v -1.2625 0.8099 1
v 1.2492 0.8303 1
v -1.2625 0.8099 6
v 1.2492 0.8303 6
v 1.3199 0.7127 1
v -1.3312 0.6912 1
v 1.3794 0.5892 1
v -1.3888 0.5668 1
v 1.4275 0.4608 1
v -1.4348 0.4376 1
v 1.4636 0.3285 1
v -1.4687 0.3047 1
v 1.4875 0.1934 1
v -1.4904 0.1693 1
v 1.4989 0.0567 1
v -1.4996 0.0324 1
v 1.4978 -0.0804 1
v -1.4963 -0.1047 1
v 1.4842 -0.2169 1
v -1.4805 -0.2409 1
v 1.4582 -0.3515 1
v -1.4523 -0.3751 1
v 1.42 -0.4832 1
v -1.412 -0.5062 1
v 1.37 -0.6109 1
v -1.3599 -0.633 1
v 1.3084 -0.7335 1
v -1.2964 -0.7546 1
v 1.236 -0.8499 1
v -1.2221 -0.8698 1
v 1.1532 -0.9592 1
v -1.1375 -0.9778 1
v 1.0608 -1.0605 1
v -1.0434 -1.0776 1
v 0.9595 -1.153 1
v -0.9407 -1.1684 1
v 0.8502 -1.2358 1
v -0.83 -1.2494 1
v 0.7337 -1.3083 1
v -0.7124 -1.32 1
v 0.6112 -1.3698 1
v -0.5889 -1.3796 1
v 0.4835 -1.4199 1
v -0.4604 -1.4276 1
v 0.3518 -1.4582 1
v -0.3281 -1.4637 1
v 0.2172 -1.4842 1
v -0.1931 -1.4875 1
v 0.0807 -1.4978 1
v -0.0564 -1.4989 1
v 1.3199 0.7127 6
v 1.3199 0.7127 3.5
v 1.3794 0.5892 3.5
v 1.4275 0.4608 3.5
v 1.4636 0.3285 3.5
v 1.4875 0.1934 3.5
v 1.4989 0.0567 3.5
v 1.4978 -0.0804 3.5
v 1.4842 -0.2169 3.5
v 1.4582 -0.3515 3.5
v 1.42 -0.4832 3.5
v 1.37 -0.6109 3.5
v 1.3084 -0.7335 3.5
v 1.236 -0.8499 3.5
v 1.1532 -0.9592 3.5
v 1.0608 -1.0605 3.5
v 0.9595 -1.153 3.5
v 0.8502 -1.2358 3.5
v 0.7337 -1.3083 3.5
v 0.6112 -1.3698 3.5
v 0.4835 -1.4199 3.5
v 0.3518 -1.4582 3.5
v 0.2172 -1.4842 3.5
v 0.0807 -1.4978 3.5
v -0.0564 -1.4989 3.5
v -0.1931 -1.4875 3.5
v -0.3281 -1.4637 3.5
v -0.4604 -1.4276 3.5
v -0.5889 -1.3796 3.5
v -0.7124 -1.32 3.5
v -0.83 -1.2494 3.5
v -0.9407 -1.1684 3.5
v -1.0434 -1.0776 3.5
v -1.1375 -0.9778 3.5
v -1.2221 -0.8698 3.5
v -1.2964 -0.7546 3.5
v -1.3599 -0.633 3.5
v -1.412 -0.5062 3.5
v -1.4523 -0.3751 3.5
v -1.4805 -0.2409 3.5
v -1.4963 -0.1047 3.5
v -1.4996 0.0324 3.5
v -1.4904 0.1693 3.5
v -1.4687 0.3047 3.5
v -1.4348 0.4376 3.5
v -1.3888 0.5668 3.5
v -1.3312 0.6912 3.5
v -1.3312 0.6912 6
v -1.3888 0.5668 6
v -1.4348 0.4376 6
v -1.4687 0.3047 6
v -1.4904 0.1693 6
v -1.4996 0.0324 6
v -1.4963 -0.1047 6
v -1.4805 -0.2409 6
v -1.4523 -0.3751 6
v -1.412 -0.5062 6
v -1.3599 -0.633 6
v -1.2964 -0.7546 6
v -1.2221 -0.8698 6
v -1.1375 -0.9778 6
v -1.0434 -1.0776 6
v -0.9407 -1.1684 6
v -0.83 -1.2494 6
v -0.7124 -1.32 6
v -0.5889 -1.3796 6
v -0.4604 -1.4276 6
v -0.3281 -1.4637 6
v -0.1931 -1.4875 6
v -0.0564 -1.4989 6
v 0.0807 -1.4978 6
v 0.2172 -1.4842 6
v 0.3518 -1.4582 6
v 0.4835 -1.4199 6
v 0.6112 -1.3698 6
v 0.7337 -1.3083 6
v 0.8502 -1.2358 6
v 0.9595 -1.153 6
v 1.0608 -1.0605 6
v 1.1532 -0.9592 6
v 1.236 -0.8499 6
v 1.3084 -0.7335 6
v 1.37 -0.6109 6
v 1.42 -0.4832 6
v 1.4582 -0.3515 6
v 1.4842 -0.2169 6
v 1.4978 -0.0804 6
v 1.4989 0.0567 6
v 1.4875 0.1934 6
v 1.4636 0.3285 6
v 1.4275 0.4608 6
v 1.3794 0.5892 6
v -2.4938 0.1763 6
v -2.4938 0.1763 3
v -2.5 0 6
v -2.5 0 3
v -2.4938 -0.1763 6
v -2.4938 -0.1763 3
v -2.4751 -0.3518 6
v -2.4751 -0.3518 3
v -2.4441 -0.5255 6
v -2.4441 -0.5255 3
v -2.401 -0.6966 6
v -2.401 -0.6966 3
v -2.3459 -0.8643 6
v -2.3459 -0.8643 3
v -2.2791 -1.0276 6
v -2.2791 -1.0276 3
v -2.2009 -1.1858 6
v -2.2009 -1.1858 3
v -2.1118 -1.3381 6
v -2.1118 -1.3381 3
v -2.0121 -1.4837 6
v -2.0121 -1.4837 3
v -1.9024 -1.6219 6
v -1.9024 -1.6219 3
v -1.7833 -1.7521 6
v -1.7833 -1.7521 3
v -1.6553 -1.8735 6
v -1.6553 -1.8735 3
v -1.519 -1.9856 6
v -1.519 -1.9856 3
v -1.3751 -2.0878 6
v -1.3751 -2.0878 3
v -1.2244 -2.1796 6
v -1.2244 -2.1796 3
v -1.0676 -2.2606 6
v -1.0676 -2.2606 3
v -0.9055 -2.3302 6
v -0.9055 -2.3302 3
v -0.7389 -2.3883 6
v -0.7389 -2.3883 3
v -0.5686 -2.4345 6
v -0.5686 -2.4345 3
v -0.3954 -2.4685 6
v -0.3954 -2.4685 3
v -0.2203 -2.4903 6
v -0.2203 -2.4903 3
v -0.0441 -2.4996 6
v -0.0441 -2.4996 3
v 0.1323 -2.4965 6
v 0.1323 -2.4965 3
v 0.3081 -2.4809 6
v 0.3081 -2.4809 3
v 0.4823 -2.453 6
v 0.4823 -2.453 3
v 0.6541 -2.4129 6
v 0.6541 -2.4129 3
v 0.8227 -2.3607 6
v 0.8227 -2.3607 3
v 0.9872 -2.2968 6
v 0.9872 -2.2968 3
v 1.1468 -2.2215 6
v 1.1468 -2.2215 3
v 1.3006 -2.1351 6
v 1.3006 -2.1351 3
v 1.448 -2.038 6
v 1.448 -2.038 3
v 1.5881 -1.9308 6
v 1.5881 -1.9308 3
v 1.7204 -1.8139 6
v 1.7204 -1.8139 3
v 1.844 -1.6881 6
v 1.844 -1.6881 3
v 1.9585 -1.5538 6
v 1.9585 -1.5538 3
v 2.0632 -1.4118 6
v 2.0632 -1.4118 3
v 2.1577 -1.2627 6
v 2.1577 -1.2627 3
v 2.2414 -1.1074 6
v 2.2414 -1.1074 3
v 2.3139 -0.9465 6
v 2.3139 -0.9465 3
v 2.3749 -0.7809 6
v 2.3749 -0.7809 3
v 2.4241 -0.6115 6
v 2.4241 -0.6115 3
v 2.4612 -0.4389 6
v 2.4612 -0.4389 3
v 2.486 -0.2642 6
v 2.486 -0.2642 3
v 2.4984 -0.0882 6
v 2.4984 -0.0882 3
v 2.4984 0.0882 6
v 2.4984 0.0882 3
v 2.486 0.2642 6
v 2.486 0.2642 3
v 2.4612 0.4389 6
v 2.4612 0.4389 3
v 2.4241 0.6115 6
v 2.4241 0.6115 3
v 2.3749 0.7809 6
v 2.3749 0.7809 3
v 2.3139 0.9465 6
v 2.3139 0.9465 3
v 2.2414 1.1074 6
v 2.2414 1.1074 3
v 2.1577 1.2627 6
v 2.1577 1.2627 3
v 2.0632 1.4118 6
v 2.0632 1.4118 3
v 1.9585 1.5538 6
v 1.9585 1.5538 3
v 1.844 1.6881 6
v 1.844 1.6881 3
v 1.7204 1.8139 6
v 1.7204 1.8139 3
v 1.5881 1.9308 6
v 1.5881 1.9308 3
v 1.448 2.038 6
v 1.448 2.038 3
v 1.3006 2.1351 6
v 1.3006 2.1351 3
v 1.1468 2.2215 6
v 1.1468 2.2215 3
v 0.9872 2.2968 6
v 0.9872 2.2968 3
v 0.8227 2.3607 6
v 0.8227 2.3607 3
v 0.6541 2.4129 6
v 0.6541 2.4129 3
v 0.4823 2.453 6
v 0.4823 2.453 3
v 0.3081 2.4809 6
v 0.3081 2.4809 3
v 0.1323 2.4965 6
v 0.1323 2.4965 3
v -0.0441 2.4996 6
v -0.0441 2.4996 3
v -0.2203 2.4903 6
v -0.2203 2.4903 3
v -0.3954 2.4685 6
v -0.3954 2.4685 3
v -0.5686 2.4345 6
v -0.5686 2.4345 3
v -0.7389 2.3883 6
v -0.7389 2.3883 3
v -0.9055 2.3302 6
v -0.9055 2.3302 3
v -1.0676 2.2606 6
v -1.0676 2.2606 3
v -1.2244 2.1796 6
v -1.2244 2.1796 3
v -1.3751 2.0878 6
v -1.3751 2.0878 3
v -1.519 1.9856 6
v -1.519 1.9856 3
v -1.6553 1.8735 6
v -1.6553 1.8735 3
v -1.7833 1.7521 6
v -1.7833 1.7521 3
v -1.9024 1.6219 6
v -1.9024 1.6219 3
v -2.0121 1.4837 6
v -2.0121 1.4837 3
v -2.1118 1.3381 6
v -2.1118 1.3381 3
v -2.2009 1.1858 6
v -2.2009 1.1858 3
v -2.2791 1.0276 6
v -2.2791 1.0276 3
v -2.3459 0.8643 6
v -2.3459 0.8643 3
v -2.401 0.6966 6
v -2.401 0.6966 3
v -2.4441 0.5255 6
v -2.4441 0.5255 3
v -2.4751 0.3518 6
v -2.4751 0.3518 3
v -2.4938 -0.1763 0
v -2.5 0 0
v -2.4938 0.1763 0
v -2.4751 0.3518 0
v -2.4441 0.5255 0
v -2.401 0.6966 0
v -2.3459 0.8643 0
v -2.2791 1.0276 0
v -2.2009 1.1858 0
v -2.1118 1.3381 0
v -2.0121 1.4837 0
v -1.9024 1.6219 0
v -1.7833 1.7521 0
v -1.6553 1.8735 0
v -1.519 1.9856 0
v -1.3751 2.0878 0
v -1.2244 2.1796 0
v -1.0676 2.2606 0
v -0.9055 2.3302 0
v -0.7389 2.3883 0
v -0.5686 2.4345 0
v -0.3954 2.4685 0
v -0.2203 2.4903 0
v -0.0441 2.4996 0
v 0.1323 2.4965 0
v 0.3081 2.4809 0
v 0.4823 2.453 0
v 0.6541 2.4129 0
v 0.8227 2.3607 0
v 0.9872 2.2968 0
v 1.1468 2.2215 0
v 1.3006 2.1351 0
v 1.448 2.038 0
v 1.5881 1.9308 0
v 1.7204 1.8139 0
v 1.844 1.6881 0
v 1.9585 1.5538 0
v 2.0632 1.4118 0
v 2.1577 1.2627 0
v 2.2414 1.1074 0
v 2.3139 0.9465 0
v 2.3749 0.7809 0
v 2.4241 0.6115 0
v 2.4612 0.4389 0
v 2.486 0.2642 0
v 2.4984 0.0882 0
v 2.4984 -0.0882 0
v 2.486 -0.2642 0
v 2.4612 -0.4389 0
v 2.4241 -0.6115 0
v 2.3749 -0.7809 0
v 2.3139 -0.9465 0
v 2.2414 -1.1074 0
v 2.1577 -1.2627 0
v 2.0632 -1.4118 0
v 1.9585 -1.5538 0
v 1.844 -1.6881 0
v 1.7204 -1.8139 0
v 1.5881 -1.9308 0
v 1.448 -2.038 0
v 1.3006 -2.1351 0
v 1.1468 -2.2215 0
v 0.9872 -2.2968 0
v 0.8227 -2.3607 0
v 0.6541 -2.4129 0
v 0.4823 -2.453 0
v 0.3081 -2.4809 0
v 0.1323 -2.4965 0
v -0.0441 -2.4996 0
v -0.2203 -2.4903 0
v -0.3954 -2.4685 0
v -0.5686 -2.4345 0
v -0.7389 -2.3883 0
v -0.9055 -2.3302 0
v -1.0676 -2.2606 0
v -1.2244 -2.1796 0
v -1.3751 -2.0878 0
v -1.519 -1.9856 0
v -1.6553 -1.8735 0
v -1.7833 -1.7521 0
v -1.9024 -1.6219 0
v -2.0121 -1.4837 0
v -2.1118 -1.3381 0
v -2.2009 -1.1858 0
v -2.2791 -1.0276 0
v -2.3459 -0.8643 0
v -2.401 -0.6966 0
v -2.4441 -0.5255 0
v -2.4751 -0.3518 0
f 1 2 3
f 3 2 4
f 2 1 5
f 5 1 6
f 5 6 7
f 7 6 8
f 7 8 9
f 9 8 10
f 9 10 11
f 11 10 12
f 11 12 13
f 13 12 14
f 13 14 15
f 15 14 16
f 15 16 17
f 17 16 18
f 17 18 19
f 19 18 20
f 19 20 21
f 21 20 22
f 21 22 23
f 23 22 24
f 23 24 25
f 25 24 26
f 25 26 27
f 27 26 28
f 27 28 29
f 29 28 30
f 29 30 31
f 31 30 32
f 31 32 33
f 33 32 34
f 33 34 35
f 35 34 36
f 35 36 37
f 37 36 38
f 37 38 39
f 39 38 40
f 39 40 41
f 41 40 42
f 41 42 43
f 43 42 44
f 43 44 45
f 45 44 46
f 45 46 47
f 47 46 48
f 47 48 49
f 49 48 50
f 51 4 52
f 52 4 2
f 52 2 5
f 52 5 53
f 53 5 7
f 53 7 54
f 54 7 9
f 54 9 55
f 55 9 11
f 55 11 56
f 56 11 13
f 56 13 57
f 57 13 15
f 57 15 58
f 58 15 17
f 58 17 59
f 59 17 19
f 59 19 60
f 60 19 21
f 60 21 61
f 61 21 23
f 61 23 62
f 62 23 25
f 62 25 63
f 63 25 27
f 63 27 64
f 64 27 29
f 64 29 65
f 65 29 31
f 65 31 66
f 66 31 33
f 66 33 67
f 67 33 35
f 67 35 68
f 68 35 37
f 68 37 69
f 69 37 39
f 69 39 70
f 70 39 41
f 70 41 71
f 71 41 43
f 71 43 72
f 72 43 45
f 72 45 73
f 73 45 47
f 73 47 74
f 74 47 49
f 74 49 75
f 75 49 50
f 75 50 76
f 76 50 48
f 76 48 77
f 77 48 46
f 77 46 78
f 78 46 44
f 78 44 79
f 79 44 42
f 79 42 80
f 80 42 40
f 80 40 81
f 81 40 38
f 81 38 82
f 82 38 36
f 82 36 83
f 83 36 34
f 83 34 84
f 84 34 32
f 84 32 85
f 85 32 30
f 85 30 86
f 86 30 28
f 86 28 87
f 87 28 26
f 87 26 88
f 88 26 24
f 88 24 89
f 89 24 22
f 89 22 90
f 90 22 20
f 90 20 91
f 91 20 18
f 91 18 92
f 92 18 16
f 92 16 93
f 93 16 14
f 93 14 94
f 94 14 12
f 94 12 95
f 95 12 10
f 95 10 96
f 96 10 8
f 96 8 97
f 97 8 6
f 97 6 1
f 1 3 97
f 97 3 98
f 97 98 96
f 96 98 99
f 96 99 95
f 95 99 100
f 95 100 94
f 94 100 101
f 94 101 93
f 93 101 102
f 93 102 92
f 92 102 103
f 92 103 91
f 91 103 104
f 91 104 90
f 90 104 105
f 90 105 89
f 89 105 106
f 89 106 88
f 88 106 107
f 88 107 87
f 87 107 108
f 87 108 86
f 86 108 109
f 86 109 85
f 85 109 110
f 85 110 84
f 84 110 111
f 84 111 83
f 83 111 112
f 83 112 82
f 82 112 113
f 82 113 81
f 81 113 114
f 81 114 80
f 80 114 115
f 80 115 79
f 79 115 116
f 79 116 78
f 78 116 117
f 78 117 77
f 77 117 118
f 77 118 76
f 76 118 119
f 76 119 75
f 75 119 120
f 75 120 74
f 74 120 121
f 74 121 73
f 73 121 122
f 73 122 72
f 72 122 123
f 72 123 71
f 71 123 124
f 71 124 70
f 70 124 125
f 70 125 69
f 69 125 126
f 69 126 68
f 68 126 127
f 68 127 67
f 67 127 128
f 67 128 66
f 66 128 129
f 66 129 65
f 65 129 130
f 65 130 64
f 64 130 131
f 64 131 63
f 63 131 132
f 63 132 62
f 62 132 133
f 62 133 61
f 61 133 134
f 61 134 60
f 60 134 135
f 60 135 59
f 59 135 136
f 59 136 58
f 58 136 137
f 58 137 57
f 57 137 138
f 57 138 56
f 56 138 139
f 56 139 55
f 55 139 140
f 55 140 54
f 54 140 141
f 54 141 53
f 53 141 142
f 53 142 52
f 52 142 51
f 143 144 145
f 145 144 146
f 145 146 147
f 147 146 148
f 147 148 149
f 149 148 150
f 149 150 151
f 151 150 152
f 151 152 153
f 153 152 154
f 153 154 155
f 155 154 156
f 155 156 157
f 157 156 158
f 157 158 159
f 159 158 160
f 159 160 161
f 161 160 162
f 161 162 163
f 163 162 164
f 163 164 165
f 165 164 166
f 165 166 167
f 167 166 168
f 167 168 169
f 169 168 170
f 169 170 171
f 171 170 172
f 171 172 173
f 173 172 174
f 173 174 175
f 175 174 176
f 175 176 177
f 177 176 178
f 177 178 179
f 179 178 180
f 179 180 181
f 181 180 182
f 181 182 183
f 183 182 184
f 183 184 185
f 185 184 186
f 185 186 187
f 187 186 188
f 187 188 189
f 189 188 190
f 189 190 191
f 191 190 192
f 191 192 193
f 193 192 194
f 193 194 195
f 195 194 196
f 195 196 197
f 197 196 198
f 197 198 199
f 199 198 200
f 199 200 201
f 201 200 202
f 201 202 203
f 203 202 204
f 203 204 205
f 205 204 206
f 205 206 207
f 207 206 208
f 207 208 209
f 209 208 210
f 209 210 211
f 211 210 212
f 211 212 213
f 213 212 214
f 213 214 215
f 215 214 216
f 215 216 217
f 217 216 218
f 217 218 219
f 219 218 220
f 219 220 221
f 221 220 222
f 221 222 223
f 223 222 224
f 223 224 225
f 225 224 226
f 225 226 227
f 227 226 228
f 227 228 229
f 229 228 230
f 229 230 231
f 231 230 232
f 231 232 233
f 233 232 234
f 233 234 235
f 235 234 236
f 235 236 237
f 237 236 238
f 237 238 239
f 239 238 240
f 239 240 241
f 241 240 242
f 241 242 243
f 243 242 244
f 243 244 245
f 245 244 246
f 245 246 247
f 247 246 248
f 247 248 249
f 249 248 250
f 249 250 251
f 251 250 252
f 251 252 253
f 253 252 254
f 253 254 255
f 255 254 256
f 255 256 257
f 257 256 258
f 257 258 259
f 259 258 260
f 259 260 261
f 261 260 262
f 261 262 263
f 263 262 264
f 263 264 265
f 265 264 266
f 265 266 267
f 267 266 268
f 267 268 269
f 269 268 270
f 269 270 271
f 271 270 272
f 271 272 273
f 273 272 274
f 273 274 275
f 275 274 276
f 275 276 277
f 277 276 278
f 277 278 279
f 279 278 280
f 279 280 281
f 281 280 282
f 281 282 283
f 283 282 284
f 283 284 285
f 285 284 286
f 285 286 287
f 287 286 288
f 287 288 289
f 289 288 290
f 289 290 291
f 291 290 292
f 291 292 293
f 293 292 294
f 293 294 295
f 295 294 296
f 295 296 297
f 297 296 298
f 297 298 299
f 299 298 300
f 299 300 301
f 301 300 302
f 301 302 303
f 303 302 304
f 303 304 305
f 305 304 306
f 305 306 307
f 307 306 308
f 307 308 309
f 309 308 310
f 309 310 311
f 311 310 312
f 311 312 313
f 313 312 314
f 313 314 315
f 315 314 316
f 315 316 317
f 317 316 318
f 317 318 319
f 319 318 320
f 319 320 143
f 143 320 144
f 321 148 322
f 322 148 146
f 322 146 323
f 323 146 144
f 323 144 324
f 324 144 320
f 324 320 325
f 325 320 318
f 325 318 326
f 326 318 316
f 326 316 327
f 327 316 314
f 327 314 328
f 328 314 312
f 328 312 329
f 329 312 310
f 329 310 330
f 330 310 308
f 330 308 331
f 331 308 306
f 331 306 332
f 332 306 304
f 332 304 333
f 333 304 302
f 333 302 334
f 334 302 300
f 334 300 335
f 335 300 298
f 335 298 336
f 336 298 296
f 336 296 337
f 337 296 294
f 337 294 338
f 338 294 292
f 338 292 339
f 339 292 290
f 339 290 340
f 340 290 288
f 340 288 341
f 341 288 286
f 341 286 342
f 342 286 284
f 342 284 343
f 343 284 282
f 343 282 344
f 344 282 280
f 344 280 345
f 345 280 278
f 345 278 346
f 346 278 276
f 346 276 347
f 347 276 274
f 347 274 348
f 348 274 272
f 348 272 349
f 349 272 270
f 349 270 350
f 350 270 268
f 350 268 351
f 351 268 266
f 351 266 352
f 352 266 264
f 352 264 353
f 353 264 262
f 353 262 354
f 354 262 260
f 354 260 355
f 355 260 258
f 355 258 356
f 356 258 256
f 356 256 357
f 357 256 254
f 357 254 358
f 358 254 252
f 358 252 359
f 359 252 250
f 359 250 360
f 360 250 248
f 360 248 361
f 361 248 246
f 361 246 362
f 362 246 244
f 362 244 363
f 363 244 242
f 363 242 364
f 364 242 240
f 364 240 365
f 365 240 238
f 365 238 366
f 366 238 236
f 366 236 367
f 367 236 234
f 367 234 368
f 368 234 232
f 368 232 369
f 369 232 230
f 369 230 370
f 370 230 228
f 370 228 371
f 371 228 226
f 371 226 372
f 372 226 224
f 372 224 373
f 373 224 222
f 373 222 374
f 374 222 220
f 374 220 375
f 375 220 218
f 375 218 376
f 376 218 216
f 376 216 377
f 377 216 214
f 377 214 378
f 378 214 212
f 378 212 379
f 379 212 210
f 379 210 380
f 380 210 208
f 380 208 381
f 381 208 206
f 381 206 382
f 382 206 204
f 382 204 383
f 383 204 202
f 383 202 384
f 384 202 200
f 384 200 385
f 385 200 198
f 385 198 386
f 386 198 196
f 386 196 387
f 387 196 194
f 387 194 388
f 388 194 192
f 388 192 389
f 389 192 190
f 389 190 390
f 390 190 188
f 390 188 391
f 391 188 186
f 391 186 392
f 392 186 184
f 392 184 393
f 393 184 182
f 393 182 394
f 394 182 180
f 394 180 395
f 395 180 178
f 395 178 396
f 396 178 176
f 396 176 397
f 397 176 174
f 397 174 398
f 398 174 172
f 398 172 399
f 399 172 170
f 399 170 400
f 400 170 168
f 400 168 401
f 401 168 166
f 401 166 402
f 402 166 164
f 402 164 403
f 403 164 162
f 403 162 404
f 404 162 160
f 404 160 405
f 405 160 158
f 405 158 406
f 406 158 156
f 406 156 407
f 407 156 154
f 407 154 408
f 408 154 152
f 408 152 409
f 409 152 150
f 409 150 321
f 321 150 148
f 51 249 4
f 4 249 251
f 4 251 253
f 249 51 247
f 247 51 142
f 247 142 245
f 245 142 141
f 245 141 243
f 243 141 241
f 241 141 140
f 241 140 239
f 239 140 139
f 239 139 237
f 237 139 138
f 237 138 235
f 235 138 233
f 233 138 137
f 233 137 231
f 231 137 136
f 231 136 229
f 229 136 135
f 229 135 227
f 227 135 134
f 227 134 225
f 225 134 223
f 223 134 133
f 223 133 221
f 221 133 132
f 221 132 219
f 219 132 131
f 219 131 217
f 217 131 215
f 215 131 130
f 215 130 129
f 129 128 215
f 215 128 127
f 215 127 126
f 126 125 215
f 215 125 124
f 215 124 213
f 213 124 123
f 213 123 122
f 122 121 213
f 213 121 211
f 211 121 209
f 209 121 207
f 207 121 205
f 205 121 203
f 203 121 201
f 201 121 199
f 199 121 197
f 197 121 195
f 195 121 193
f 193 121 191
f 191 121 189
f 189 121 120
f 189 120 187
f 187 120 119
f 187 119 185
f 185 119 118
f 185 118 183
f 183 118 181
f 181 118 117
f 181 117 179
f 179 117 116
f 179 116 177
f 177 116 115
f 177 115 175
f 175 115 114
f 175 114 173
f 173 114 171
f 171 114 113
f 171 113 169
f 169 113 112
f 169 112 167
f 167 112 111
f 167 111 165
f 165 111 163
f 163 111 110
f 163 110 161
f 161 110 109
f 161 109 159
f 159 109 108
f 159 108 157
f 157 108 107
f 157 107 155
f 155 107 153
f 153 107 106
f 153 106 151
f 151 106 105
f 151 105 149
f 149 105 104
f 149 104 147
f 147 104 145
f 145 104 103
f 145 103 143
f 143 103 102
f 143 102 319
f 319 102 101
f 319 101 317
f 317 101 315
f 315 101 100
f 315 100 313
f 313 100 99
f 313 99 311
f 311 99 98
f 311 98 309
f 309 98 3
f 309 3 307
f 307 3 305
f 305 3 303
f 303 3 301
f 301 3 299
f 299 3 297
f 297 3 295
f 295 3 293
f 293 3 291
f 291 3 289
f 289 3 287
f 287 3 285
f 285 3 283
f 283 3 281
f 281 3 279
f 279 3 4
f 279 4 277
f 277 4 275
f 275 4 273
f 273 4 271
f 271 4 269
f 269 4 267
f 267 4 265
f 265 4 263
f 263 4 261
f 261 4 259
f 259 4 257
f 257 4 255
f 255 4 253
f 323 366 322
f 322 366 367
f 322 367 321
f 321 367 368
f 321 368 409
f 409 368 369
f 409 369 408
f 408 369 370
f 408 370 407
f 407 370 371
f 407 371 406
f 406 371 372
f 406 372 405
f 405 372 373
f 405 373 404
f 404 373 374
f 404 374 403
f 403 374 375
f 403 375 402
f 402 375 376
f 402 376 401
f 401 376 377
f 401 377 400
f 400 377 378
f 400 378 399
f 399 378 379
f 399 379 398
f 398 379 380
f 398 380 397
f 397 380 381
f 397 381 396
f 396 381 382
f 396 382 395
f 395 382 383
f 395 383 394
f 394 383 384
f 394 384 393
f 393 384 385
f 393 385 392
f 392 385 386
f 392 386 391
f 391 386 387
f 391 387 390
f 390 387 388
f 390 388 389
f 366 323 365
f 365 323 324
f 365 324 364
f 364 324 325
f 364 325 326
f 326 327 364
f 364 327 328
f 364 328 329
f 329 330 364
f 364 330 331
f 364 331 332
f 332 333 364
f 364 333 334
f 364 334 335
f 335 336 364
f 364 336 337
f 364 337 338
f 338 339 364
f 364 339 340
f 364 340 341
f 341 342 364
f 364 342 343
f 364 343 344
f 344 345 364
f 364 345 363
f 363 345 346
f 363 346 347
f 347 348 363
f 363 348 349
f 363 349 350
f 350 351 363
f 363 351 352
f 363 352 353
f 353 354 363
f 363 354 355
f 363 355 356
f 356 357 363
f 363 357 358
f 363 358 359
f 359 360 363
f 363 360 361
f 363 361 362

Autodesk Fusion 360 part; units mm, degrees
sketch "Sketch1" plane through (0, 0, 0) normal (0, 0, 1) x (1, 0, 0)
  circle A0 centre (0, 0) radius 2.5
  dimension "d1" = 5
extrude "Extrude1" add sketch "Sketch1" along normal blind 6
sketch "Sketch2" plane through (0, 0, 6) normal (0, 0, 1) x (-1, 0, 0)
  circle A0 centre (0, 0) radius 2.5
  circle A1 centre (0, 0) radius 1.5
  dimension "d4" = 3
extrude "Extrude2" cut sketch "Sketch2" against normal blind 5 contours A1
sketch "Sketch3" plane through (0, 0, 1) normal (0, 0, 1) x (-1, 0, 0)
  circle A0 centre (0, 0) radius 1.5
  line L0 (1.2625, -0.8099) -> (-1.2492, -0.8303)
  arc A1 (0.0066, -1.5) -> (-1.2492, -0.8303) centre (0, 0) ccw
extrude "Extrude3" add sketch "Sketch3" along normal blind 5 contours A0 L0 A1 picked at (0.6944, -1.19)
